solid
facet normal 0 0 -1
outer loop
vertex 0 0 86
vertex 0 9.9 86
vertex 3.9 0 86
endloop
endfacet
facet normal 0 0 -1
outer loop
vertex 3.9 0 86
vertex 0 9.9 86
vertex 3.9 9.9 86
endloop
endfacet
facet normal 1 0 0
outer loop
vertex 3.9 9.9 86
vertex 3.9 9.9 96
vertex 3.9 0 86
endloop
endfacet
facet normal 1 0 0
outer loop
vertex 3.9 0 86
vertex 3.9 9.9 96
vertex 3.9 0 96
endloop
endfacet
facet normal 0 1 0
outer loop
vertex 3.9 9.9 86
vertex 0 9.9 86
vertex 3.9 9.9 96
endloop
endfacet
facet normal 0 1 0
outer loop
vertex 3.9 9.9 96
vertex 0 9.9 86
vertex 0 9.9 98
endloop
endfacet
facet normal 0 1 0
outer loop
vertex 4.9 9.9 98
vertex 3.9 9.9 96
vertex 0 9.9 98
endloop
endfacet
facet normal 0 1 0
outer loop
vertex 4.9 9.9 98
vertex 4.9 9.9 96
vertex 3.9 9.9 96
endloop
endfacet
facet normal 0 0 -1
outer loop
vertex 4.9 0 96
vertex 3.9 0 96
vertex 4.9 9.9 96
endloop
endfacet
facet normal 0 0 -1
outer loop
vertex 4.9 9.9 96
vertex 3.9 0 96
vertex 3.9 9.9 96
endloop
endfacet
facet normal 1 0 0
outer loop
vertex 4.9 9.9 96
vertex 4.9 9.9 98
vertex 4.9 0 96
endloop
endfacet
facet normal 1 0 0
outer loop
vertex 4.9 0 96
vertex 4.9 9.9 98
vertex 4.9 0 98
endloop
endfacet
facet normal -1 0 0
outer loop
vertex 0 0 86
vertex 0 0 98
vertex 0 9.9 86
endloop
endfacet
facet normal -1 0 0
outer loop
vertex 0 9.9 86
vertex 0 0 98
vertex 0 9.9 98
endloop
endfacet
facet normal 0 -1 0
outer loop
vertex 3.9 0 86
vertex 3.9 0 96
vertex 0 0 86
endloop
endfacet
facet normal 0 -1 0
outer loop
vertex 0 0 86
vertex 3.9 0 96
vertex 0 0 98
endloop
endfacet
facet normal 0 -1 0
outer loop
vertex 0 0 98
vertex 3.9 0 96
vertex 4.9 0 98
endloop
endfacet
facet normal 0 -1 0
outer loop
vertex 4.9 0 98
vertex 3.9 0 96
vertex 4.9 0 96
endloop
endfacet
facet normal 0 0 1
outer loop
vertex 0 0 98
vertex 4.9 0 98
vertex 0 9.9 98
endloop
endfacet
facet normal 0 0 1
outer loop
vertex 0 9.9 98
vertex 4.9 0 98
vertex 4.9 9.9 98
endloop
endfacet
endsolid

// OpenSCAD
// #200-003 Stator Balancer — parametric source.
// One of four keys that stand in the Arm Body's K1 slots and the Pivot Stator Holder's ear slots, and
// hold the stator against the drive's torque. They are tapped in with light mallet taps
// (specs/008.5 step 6).
//
//   config = "previous" — a faithful recreation of the reference mesh
//                         (../Reference/meshes/200-ArmBody/), in that mesh's frame.
//   config = "revised"  — the same part. Its fits wait for the arm body's assembly (below).
//
// FRAME. The reference's own, which is the Arm Body's assembly frame: the shank's inner face on
// x = 0, the part from y 0 to 9.900 and from z 86 to 98.
//
// Measured from the reference with scadmesh planes/slice/solid (it is 20 triangles). The feature IDs
// are those of 200-003_StatorBalancer.view.json:
//
//     ID  feature   section (x by z)            y span
//     S1  shank     0 .. 3.900  by 86 .. 96     0 .. 9.900
//     L1  lip       0 .. 4.900  by 96 .. 98     0 .. 9.900
//
// FITS, deferred: S1 in the Arm Body's 4.0 x 10.0 K1 slot (a tapped-in press) and in the holder's ear
// slot (whose revised slip is the holder's) are settled with the arm body's assembly
// (armbody_assembly), so revised draws none yet.

/* [Configuration] */
// Parameter set: previous (reference) or revised
config = "previous"; // [previous, revised]

/* [Hidden] */
SHANK = [3.900, 86.000, 96.000];   // radial depth, z bottom, z top
LIP   = [4.900, 98.000];           // radial depth, z top
WIDTH = 9.900;

// The L section in (x, z), extruded along +Y.
module stator_balancer(cfg = config)
    translate([0, WIDTH, 0]) rotate([90, 0, 0]) linear_extrude(WIDTH)
        polygon([[0, SHANK[1]], [SHANK[0], SHANK[1]], [SHANK[0], SHANK[2]],
                 [LIP[0], SHANK[2]], [LIP[0], LIP[1]], [0, LIP[1]]]);

stator_balancer();
